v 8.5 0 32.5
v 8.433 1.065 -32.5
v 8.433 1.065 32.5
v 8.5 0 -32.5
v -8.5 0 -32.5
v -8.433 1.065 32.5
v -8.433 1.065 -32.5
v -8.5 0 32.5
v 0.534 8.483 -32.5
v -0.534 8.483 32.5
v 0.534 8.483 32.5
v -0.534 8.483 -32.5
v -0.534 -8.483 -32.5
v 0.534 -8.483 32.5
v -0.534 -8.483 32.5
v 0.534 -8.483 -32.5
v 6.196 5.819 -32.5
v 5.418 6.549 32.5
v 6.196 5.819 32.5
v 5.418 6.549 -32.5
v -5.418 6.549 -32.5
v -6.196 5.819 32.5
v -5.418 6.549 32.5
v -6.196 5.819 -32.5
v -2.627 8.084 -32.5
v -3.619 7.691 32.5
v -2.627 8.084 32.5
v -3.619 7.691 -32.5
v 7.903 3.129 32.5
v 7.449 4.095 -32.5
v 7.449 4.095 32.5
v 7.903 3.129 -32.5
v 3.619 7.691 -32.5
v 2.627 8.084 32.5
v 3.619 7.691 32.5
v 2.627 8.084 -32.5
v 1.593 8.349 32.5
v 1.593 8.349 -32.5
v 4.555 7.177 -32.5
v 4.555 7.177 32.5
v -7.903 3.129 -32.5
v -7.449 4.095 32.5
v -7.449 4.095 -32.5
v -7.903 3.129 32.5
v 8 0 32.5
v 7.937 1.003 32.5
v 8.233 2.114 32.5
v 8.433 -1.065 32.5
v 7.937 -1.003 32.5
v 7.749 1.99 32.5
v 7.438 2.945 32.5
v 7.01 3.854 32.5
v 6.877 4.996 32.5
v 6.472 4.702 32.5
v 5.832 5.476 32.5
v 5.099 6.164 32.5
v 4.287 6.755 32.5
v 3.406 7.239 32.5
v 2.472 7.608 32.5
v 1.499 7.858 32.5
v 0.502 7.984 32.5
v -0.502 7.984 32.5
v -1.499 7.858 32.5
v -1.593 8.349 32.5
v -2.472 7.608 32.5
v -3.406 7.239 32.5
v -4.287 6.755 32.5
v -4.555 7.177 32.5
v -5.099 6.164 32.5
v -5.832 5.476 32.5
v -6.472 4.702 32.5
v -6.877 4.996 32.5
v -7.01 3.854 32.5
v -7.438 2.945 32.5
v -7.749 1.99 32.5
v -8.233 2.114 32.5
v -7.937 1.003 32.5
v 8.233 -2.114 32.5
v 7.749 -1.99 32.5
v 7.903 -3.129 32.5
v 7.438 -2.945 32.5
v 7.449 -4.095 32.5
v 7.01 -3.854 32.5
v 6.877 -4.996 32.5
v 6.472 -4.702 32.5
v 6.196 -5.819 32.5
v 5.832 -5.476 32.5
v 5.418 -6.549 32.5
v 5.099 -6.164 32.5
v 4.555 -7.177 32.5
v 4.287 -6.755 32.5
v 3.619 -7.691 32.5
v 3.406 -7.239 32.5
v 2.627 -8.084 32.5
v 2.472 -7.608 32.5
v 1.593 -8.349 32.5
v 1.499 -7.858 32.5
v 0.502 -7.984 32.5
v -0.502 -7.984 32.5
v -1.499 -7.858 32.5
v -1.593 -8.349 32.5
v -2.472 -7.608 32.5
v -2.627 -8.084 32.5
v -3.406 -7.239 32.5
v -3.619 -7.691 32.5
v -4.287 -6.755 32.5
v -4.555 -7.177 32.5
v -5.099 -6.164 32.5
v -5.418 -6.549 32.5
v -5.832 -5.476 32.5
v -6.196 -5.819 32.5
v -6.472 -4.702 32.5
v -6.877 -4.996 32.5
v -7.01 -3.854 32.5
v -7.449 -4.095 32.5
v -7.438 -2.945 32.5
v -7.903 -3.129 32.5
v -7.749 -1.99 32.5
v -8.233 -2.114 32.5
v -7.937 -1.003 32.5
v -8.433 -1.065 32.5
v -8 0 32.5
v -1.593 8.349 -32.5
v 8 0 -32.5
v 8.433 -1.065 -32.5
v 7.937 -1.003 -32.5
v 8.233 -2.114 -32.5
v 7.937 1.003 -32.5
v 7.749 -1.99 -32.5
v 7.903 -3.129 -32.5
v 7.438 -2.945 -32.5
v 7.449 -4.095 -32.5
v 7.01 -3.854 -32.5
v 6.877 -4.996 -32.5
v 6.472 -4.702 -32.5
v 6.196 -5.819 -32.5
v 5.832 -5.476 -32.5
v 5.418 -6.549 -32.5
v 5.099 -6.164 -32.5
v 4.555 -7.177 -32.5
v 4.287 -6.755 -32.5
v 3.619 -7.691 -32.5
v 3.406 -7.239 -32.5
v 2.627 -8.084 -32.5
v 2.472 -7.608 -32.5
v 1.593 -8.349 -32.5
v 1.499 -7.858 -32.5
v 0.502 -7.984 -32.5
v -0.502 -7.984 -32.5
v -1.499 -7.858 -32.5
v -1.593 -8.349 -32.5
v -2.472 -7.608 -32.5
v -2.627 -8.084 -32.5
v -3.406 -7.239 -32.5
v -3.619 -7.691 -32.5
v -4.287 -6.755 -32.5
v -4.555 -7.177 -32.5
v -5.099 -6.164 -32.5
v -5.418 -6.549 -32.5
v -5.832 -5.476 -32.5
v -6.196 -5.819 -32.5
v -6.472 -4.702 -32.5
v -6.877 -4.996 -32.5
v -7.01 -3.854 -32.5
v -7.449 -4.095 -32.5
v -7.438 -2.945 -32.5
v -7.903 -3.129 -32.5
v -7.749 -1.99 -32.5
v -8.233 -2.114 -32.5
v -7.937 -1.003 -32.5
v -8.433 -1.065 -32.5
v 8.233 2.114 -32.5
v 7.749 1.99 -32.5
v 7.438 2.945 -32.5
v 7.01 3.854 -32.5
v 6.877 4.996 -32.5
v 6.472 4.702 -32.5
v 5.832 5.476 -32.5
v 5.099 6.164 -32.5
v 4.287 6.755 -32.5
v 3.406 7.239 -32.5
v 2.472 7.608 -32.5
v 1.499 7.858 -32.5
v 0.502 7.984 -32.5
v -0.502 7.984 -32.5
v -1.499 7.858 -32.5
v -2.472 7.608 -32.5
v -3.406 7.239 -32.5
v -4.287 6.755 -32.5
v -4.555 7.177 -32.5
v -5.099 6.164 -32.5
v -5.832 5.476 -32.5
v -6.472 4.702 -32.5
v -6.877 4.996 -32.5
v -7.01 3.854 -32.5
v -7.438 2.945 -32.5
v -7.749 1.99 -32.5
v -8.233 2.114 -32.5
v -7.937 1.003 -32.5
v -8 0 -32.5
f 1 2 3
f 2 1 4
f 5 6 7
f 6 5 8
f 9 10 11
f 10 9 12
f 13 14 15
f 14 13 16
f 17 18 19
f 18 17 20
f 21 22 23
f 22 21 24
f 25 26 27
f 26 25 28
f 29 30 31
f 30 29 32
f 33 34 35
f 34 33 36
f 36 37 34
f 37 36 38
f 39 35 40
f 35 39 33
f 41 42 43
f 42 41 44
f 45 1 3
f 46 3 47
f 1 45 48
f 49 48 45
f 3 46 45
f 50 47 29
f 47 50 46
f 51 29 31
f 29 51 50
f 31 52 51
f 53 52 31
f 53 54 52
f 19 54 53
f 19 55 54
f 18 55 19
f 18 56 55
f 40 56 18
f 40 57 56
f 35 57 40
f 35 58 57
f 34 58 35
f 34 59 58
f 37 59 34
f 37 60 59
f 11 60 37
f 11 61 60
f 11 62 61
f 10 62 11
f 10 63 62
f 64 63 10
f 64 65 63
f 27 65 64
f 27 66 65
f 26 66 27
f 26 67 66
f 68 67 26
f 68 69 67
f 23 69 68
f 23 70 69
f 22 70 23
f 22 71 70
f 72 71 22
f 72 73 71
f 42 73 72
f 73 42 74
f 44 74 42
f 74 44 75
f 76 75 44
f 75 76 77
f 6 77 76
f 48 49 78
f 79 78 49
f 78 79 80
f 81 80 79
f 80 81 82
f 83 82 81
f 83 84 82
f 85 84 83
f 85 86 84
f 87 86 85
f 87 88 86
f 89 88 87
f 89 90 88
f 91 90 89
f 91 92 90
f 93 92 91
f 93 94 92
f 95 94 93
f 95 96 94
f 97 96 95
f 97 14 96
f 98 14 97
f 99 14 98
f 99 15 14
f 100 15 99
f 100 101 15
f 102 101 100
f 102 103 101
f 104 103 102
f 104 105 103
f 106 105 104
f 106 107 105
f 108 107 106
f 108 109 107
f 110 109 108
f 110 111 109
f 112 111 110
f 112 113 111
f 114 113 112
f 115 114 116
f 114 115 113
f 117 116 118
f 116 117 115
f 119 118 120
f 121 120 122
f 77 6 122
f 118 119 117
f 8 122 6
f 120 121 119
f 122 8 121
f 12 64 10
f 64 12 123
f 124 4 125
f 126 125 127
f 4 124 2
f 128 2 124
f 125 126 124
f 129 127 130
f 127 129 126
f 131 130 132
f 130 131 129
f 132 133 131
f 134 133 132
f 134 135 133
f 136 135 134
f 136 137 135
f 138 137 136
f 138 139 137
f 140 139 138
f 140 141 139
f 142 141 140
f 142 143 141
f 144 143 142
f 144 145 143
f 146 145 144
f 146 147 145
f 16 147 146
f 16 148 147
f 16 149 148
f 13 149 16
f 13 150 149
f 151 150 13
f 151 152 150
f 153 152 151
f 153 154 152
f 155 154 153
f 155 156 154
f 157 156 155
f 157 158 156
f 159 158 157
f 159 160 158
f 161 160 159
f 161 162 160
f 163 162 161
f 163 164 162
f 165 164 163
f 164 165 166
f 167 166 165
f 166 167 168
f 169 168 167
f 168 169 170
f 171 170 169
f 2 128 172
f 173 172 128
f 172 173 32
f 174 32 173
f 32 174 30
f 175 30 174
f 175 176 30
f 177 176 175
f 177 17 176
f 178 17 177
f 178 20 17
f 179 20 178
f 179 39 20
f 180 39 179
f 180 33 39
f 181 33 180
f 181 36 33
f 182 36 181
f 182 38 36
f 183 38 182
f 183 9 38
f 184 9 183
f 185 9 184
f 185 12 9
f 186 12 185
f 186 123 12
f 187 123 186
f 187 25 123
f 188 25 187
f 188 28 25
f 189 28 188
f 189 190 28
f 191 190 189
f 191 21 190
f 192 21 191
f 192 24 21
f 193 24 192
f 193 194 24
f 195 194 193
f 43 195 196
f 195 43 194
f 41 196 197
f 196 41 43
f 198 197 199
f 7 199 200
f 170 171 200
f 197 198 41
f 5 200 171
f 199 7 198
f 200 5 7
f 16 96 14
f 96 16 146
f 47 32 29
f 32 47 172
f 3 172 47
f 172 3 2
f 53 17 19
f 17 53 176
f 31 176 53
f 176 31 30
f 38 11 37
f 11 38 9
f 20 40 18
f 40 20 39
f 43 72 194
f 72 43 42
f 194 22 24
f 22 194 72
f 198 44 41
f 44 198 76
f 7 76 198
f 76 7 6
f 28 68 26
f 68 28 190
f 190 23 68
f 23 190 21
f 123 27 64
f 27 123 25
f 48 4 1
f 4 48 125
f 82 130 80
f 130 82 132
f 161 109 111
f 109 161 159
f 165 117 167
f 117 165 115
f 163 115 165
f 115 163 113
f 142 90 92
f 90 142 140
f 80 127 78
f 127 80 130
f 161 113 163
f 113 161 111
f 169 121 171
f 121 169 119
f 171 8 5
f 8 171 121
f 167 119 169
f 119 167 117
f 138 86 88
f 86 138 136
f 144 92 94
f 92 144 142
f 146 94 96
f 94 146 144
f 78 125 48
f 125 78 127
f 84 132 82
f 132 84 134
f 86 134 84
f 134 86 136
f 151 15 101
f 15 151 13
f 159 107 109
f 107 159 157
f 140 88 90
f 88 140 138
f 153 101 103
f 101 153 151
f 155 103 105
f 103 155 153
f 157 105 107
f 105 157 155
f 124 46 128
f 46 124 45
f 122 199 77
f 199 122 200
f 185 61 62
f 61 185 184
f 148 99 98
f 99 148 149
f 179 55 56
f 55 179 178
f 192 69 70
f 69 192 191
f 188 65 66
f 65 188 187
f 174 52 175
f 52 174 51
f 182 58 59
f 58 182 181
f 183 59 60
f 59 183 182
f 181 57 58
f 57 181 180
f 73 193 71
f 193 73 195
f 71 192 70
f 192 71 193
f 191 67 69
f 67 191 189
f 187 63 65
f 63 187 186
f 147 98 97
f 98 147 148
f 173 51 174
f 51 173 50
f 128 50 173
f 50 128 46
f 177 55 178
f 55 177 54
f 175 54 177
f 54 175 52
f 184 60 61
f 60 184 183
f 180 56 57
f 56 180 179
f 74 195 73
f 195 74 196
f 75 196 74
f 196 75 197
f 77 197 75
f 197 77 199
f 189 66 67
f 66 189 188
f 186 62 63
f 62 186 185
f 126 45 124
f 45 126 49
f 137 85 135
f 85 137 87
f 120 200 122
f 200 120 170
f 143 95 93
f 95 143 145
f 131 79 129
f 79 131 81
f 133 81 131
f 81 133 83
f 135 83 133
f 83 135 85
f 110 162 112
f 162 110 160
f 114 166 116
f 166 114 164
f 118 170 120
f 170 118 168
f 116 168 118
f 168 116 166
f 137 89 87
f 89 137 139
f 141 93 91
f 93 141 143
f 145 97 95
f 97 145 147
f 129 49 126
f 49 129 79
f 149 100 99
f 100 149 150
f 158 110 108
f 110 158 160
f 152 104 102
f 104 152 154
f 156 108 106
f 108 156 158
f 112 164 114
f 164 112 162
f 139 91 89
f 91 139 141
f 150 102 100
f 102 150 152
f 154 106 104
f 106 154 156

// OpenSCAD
$fn = 50;


difference() {
	union() {
		translate(v = [0, 0, -32.5000000000]) {
			cylinder(h = 65, r = 8.5000000000);
		}
	}
	union() {
		translate(v = [0, 0, -100.0000000000]) {
			cylinder(h = 200, r = 8);
		}
	}
}
